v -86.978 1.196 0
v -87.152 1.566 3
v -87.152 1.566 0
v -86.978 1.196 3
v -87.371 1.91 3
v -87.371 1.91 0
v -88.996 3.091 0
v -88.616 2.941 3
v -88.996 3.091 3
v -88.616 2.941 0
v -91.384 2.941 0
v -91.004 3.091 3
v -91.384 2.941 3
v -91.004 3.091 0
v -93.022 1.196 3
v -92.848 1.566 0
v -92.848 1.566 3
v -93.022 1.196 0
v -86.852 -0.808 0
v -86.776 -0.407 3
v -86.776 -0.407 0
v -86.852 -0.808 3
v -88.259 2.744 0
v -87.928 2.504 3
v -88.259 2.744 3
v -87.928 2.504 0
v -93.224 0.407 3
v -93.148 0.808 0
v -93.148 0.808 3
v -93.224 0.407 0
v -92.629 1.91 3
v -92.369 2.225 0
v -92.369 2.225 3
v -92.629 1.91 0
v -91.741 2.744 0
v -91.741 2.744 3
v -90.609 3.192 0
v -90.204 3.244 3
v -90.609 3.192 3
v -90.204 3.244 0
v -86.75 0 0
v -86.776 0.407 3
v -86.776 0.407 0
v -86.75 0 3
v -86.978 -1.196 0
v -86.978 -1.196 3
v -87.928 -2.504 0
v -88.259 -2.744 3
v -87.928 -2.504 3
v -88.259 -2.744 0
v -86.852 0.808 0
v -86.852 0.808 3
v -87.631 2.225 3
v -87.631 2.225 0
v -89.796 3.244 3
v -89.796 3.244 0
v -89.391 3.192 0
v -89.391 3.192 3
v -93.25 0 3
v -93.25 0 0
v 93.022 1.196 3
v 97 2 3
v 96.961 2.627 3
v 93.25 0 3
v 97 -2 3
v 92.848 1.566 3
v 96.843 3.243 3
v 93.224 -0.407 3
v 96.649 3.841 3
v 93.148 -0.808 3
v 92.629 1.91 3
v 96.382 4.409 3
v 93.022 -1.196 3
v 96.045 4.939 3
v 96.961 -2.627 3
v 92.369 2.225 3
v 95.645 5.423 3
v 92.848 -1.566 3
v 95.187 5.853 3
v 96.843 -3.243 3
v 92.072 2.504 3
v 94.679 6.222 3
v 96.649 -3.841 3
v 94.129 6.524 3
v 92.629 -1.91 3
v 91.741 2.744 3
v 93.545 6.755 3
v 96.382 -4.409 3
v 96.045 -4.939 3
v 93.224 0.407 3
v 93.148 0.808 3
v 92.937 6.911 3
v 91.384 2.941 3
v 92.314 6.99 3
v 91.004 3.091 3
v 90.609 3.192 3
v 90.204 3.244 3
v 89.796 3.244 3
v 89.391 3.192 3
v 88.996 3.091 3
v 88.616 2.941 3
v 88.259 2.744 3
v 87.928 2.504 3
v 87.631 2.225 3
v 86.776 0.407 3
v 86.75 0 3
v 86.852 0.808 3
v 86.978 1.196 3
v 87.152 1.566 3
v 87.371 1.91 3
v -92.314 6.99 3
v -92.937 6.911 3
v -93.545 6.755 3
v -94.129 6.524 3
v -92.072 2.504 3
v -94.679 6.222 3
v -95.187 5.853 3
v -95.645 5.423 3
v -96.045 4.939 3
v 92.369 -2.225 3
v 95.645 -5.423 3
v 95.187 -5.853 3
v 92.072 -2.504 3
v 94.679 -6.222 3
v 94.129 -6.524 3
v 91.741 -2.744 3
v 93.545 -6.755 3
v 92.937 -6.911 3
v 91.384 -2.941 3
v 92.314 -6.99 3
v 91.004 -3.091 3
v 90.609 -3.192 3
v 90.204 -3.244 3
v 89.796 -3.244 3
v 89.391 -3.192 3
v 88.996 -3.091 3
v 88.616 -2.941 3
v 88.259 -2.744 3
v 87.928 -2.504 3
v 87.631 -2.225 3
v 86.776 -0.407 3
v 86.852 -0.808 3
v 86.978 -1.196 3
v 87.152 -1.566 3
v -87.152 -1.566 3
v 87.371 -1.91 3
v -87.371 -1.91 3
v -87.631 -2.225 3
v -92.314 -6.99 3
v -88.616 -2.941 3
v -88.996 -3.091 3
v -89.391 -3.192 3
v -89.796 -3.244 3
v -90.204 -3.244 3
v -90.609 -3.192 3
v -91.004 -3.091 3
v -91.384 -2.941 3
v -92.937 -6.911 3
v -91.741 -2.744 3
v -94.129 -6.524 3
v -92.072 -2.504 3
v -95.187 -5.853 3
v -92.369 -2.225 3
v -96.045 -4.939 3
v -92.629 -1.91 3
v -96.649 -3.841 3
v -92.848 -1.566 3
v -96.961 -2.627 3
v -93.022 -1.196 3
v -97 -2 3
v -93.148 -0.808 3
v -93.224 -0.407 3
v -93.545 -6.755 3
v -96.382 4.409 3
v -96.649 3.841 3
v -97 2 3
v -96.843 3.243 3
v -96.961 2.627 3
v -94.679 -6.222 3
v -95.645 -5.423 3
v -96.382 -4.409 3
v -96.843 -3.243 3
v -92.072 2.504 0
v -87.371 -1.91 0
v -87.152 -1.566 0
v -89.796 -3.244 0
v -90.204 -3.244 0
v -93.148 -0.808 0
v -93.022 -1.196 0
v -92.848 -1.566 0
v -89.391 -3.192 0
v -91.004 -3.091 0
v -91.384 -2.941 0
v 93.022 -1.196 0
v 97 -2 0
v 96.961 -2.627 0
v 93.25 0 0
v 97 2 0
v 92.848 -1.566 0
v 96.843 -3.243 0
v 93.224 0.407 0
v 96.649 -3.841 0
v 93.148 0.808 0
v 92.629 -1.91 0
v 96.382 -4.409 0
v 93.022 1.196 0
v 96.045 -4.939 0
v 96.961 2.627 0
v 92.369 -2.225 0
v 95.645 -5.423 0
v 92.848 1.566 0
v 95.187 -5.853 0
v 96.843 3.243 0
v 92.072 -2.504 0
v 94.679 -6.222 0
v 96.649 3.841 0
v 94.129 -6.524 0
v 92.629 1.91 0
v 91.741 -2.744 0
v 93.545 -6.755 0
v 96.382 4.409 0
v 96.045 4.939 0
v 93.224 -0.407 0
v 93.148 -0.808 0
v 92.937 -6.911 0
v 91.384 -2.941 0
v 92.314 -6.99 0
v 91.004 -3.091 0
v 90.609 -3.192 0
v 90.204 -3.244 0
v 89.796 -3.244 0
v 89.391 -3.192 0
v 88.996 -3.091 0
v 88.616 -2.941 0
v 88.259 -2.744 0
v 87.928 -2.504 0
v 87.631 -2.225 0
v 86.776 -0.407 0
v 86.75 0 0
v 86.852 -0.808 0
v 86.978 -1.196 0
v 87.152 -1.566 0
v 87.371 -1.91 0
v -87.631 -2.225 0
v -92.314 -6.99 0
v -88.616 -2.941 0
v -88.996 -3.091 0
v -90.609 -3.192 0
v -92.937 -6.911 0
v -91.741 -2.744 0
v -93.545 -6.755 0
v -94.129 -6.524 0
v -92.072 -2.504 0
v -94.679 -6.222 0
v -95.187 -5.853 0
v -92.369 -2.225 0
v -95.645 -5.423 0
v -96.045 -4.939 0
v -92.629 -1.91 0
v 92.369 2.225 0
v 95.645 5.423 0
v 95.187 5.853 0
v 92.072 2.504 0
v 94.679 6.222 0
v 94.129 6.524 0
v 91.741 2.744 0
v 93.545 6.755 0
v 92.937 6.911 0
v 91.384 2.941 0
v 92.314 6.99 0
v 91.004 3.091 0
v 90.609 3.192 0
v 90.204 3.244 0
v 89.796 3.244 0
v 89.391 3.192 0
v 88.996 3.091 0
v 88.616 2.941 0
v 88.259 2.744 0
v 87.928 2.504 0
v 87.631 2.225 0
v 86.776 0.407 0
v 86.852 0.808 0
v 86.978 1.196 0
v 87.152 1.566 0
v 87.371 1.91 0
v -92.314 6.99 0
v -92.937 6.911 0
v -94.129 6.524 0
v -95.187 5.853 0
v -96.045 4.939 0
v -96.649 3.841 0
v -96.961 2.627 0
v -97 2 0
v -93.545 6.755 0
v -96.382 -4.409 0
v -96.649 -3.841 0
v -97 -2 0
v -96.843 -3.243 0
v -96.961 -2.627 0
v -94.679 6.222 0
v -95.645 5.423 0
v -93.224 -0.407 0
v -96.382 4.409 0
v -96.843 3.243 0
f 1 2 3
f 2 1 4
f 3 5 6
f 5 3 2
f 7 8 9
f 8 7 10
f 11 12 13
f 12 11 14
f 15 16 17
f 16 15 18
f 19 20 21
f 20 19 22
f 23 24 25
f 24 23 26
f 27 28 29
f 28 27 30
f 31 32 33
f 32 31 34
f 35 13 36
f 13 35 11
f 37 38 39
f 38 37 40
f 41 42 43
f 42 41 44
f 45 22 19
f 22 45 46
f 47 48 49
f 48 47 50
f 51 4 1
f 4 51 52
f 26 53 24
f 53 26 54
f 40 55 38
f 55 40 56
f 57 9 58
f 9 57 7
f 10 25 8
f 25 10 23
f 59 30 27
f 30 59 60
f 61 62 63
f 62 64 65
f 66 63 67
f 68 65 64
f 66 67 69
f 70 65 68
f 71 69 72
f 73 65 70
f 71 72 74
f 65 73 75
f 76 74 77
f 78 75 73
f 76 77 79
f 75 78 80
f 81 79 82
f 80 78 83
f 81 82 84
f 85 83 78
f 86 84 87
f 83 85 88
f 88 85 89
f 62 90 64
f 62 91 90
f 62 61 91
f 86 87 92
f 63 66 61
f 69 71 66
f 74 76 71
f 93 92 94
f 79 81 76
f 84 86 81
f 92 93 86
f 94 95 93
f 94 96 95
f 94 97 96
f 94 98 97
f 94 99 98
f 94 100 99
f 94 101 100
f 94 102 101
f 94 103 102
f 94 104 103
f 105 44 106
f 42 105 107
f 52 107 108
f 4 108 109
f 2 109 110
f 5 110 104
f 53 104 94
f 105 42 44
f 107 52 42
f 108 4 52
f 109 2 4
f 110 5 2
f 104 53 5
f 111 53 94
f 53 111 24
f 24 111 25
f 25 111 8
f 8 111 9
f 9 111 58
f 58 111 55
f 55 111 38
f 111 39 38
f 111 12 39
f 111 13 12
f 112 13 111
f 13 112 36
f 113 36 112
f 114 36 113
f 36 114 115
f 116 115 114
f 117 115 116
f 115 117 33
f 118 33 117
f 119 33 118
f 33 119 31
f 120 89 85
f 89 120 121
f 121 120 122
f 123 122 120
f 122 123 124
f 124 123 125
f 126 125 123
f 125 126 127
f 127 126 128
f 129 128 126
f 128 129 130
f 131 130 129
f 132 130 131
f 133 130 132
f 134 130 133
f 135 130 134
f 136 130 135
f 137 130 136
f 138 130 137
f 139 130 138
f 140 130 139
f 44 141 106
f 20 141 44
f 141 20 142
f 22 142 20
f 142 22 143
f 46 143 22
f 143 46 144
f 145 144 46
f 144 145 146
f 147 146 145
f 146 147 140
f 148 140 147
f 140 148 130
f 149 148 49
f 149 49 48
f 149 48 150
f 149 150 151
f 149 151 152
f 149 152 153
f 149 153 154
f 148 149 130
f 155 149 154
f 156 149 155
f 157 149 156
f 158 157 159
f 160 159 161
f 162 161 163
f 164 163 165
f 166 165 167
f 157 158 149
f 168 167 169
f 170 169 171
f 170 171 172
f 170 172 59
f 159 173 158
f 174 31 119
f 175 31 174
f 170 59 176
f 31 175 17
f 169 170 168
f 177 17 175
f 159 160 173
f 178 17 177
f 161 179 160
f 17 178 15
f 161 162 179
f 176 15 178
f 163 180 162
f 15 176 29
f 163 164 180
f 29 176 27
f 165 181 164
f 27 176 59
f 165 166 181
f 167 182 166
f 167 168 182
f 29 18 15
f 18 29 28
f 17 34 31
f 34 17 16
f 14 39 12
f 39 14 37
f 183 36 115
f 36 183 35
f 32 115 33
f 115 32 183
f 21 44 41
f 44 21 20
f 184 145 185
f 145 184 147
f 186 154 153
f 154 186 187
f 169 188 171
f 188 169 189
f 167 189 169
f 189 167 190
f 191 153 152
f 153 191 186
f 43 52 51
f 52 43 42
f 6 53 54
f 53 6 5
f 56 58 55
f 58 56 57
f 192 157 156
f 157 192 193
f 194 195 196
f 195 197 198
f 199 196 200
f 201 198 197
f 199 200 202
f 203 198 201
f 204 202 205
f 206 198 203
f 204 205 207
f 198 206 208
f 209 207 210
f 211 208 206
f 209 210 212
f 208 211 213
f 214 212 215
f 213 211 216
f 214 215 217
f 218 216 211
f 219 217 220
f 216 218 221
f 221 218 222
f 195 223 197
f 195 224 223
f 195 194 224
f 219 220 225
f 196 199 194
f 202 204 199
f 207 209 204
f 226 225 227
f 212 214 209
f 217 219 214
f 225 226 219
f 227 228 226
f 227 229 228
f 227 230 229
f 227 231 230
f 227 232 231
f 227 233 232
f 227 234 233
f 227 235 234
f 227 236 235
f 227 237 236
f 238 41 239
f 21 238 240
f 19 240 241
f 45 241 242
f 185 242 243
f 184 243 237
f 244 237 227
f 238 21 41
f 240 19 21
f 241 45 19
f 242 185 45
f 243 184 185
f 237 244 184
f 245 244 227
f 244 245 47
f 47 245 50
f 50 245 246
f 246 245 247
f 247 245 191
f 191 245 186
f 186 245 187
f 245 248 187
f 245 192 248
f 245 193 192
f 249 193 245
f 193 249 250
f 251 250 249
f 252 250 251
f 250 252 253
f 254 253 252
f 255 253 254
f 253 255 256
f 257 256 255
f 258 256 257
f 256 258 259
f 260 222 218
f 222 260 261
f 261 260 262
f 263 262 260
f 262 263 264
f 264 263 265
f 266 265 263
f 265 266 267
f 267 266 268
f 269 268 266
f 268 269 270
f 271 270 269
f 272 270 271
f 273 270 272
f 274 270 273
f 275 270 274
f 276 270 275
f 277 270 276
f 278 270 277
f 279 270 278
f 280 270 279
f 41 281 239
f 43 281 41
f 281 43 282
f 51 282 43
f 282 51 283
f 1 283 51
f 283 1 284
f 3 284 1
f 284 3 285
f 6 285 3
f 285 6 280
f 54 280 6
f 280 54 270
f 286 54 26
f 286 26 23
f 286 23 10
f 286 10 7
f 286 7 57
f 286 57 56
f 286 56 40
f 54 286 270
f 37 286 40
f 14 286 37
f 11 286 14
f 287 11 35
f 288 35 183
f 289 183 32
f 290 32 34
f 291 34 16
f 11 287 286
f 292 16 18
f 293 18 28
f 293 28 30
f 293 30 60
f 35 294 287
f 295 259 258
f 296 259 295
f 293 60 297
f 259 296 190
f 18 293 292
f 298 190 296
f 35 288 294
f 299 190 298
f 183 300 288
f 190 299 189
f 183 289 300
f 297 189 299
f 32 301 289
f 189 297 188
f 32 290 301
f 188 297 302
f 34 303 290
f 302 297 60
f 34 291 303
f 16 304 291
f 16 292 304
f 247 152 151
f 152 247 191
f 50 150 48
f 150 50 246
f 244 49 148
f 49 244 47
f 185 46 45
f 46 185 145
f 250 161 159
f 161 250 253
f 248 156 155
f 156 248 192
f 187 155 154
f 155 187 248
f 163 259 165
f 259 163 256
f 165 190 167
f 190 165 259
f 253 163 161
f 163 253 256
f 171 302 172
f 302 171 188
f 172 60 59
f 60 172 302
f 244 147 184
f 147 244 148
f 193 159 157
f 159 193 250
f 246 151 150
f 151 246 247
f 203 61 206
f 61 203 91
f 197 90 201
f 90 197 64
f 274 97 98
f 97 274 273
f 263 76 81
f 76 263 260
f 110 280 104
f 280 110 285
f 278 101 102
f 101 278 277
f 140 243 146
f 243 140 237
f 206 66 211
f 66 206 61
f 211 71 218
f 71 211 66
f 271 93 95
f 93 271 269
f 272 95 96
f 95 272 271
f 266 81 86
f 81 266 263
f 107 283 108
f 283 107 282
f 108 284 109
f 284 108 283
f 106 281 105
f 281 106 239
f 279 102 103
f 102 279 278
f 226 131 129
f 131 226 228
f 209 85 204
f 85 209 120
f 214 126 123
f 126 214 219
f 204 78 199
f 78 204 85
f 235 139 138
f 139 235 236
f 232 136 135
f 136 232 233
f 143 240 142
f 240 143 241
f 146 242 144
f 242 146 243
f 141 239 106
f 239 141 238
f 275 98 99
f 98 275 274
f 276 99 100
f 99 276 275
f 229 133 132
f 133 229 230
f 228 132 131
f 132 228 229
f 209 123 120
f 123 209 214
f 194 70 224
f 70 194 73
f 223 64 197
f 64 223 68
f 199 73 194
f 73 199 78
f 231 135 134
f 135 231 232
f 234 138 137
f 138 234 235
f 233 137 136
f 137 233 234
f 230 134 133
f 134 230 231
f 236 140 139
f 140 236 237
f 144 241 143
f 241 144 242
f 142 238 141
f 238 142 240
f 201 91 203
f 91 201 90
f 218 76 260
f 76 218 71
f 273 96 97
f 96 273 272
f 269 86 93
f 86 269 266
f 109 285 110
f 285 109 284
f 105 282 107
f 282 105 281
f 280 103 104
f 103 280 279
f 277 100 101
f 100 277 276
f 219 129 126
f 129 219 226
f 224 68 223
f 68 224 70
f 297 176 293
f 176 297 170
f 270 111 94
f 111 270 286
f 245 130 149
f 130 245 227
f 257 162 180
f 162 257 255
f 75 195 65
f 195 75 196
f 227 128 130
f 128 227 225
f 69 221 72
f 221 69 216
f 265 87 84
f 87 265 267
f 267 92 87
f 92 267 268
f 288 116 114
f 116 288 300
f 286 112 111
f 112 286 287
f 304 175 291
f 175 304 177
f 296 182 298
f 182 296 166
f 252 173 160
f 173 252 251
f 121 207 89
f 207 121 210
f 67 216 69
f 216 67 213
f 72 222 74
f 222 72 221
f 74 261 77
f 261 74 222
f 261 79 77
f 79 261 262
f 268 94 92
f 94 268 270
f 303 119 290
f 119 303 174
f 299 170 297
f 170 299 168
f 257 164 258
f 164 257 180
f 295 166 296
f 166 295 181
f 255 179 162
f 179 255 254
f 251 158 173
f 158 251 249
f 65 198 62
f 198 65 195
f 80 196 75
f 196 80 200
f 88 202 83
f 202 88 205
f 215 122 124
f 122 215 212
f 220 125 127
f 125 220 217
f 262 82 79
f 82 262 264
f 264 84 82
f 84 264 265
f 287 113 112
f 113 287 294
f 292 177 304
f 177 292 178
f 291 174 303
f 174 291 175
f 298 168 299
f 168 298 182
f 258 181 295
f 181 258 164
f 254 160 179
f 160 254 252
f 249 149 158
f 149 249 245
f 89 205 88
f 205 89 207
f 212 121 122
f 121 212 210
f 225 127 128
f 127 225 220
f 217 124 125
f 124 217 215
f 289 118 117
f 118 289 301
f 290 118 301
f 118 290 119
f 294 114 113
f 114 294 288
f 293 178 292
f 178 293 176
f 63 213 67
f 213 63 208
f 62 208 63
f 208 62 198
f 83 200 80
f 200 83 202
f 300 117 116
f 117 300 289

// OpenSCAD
$fn = 50;


difference() {
	union() {
		hull() {
			translate(v = [-92.0000000000, 2.0000000000, 0]) {
				cylinder(h = 3, r = 5);
			}
			translate(v = [92.0000000000, 2.0000000000, 0]) {
				cylinder(h = 3, r = 5);
			}
			translate(v = [-92.0000000000, -2.0000000000, 0]) {
				cylinder(h = 3, r = 5);
			}
			translate(v = [92.0000000000, -2.0000000000, 0]) {
				cylinder(h = 3, r = 5);
			}
		}
	}
	union() {
		translate(v = [-90.0000000000, 0.0000000000, -100.0000000000]) {
			cylinder(h = 200, r = 3.2500000000);
		}
		translate(v = [-90.0000000000, 0.0000000000, -100.0000000000]) {
			cylinder(h = 200, r = 3.2500000000);
		}
		translate(v = [90.0000000000, 0.0000000000, -100.0000000000]) {
			cylinder(h = 200, r = 3.2500000000);
		}
		translate(v = [90.0000000000, 0.0000000000, -100.0000000000]) {
			cylinder(h = 200, r = 3.2500000000);
		}
	}
}
